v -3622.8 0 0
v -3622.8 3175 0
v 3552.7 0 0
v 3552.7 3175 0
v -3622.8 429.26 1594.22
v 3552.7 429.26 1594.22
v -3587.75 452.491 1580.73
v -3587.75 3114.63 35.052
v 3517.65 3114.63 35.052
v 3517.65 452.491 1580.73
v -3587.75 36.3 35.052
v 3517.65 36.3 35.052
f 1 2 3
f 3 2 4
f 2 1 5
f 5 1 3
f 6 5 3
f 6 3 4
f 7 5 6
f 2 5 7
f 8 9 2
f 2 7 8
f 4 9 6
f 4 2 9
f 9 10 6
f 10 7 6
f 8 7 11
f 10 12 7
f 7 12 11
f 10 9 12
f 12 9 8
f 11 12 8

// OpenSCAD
conversion = 254;

bucket_width = 28.25 * conversion;
bucket_length = 12.5 * conversion;
bucket_height = 6.5 * conversion;
bucket_diagonal = 12.5 * conversion;

bucket_thickness = .138 * conversion;

angle = acos((pow(bucket_length, 2) + pow(bucket_height, 2) - pow(bucket_diagonal, 2)) / (2 * bucket_length * bucket_height));

echo(angle);

bucket();

module bucket() {
	difference() {
		hull() {
			translate([-bucket_width/2, 0, 0])
			bucket_side();

			translate([bucket_width/2 - bucket_thickness, 0, 0])
			bucket_side();
		}

		translate([0, bucket_thickness / sin(angle), bucket_thickness])
		hull() {
			translate([-bucket_width/2 + bucket_thickness, 0, 0])
			bucket_side();

			translate([bucket_width/2 - bucket_thickness * 2, 0, 0])
			bucket_side();
		}
	}
}

module bucket_side() {
	rotate([0, -90, 0])
	linear_extrude(height = bucket_thickness) {
		polygon(points = [
				[0, 0],
				[0, bucket_length],
				[bucket_height * sin(angle), bucket_height * cos(angle)]],

				paths = [[0, 1, 2]]);
	}
}

module bucket_shape() {
	polyhedron(points = [
			[0, 0, 0],
			[bucket_width, 0, 0],
			[bucket_width, bucket_length, 0],
			[0, bucket_length, 0],
			[0, bucket_height * cos(angle), bucket_height * sin(angle)],
			[bucket_width, bucket_height * cos(angle), bucket_height * sin(angle)]],
	
			faces = [
			[0, 1, 2, 3], [0, 3, 4], [1, 2, 5], [0, 1, 5, 4], [2, 3, 4, 5]]);
}
